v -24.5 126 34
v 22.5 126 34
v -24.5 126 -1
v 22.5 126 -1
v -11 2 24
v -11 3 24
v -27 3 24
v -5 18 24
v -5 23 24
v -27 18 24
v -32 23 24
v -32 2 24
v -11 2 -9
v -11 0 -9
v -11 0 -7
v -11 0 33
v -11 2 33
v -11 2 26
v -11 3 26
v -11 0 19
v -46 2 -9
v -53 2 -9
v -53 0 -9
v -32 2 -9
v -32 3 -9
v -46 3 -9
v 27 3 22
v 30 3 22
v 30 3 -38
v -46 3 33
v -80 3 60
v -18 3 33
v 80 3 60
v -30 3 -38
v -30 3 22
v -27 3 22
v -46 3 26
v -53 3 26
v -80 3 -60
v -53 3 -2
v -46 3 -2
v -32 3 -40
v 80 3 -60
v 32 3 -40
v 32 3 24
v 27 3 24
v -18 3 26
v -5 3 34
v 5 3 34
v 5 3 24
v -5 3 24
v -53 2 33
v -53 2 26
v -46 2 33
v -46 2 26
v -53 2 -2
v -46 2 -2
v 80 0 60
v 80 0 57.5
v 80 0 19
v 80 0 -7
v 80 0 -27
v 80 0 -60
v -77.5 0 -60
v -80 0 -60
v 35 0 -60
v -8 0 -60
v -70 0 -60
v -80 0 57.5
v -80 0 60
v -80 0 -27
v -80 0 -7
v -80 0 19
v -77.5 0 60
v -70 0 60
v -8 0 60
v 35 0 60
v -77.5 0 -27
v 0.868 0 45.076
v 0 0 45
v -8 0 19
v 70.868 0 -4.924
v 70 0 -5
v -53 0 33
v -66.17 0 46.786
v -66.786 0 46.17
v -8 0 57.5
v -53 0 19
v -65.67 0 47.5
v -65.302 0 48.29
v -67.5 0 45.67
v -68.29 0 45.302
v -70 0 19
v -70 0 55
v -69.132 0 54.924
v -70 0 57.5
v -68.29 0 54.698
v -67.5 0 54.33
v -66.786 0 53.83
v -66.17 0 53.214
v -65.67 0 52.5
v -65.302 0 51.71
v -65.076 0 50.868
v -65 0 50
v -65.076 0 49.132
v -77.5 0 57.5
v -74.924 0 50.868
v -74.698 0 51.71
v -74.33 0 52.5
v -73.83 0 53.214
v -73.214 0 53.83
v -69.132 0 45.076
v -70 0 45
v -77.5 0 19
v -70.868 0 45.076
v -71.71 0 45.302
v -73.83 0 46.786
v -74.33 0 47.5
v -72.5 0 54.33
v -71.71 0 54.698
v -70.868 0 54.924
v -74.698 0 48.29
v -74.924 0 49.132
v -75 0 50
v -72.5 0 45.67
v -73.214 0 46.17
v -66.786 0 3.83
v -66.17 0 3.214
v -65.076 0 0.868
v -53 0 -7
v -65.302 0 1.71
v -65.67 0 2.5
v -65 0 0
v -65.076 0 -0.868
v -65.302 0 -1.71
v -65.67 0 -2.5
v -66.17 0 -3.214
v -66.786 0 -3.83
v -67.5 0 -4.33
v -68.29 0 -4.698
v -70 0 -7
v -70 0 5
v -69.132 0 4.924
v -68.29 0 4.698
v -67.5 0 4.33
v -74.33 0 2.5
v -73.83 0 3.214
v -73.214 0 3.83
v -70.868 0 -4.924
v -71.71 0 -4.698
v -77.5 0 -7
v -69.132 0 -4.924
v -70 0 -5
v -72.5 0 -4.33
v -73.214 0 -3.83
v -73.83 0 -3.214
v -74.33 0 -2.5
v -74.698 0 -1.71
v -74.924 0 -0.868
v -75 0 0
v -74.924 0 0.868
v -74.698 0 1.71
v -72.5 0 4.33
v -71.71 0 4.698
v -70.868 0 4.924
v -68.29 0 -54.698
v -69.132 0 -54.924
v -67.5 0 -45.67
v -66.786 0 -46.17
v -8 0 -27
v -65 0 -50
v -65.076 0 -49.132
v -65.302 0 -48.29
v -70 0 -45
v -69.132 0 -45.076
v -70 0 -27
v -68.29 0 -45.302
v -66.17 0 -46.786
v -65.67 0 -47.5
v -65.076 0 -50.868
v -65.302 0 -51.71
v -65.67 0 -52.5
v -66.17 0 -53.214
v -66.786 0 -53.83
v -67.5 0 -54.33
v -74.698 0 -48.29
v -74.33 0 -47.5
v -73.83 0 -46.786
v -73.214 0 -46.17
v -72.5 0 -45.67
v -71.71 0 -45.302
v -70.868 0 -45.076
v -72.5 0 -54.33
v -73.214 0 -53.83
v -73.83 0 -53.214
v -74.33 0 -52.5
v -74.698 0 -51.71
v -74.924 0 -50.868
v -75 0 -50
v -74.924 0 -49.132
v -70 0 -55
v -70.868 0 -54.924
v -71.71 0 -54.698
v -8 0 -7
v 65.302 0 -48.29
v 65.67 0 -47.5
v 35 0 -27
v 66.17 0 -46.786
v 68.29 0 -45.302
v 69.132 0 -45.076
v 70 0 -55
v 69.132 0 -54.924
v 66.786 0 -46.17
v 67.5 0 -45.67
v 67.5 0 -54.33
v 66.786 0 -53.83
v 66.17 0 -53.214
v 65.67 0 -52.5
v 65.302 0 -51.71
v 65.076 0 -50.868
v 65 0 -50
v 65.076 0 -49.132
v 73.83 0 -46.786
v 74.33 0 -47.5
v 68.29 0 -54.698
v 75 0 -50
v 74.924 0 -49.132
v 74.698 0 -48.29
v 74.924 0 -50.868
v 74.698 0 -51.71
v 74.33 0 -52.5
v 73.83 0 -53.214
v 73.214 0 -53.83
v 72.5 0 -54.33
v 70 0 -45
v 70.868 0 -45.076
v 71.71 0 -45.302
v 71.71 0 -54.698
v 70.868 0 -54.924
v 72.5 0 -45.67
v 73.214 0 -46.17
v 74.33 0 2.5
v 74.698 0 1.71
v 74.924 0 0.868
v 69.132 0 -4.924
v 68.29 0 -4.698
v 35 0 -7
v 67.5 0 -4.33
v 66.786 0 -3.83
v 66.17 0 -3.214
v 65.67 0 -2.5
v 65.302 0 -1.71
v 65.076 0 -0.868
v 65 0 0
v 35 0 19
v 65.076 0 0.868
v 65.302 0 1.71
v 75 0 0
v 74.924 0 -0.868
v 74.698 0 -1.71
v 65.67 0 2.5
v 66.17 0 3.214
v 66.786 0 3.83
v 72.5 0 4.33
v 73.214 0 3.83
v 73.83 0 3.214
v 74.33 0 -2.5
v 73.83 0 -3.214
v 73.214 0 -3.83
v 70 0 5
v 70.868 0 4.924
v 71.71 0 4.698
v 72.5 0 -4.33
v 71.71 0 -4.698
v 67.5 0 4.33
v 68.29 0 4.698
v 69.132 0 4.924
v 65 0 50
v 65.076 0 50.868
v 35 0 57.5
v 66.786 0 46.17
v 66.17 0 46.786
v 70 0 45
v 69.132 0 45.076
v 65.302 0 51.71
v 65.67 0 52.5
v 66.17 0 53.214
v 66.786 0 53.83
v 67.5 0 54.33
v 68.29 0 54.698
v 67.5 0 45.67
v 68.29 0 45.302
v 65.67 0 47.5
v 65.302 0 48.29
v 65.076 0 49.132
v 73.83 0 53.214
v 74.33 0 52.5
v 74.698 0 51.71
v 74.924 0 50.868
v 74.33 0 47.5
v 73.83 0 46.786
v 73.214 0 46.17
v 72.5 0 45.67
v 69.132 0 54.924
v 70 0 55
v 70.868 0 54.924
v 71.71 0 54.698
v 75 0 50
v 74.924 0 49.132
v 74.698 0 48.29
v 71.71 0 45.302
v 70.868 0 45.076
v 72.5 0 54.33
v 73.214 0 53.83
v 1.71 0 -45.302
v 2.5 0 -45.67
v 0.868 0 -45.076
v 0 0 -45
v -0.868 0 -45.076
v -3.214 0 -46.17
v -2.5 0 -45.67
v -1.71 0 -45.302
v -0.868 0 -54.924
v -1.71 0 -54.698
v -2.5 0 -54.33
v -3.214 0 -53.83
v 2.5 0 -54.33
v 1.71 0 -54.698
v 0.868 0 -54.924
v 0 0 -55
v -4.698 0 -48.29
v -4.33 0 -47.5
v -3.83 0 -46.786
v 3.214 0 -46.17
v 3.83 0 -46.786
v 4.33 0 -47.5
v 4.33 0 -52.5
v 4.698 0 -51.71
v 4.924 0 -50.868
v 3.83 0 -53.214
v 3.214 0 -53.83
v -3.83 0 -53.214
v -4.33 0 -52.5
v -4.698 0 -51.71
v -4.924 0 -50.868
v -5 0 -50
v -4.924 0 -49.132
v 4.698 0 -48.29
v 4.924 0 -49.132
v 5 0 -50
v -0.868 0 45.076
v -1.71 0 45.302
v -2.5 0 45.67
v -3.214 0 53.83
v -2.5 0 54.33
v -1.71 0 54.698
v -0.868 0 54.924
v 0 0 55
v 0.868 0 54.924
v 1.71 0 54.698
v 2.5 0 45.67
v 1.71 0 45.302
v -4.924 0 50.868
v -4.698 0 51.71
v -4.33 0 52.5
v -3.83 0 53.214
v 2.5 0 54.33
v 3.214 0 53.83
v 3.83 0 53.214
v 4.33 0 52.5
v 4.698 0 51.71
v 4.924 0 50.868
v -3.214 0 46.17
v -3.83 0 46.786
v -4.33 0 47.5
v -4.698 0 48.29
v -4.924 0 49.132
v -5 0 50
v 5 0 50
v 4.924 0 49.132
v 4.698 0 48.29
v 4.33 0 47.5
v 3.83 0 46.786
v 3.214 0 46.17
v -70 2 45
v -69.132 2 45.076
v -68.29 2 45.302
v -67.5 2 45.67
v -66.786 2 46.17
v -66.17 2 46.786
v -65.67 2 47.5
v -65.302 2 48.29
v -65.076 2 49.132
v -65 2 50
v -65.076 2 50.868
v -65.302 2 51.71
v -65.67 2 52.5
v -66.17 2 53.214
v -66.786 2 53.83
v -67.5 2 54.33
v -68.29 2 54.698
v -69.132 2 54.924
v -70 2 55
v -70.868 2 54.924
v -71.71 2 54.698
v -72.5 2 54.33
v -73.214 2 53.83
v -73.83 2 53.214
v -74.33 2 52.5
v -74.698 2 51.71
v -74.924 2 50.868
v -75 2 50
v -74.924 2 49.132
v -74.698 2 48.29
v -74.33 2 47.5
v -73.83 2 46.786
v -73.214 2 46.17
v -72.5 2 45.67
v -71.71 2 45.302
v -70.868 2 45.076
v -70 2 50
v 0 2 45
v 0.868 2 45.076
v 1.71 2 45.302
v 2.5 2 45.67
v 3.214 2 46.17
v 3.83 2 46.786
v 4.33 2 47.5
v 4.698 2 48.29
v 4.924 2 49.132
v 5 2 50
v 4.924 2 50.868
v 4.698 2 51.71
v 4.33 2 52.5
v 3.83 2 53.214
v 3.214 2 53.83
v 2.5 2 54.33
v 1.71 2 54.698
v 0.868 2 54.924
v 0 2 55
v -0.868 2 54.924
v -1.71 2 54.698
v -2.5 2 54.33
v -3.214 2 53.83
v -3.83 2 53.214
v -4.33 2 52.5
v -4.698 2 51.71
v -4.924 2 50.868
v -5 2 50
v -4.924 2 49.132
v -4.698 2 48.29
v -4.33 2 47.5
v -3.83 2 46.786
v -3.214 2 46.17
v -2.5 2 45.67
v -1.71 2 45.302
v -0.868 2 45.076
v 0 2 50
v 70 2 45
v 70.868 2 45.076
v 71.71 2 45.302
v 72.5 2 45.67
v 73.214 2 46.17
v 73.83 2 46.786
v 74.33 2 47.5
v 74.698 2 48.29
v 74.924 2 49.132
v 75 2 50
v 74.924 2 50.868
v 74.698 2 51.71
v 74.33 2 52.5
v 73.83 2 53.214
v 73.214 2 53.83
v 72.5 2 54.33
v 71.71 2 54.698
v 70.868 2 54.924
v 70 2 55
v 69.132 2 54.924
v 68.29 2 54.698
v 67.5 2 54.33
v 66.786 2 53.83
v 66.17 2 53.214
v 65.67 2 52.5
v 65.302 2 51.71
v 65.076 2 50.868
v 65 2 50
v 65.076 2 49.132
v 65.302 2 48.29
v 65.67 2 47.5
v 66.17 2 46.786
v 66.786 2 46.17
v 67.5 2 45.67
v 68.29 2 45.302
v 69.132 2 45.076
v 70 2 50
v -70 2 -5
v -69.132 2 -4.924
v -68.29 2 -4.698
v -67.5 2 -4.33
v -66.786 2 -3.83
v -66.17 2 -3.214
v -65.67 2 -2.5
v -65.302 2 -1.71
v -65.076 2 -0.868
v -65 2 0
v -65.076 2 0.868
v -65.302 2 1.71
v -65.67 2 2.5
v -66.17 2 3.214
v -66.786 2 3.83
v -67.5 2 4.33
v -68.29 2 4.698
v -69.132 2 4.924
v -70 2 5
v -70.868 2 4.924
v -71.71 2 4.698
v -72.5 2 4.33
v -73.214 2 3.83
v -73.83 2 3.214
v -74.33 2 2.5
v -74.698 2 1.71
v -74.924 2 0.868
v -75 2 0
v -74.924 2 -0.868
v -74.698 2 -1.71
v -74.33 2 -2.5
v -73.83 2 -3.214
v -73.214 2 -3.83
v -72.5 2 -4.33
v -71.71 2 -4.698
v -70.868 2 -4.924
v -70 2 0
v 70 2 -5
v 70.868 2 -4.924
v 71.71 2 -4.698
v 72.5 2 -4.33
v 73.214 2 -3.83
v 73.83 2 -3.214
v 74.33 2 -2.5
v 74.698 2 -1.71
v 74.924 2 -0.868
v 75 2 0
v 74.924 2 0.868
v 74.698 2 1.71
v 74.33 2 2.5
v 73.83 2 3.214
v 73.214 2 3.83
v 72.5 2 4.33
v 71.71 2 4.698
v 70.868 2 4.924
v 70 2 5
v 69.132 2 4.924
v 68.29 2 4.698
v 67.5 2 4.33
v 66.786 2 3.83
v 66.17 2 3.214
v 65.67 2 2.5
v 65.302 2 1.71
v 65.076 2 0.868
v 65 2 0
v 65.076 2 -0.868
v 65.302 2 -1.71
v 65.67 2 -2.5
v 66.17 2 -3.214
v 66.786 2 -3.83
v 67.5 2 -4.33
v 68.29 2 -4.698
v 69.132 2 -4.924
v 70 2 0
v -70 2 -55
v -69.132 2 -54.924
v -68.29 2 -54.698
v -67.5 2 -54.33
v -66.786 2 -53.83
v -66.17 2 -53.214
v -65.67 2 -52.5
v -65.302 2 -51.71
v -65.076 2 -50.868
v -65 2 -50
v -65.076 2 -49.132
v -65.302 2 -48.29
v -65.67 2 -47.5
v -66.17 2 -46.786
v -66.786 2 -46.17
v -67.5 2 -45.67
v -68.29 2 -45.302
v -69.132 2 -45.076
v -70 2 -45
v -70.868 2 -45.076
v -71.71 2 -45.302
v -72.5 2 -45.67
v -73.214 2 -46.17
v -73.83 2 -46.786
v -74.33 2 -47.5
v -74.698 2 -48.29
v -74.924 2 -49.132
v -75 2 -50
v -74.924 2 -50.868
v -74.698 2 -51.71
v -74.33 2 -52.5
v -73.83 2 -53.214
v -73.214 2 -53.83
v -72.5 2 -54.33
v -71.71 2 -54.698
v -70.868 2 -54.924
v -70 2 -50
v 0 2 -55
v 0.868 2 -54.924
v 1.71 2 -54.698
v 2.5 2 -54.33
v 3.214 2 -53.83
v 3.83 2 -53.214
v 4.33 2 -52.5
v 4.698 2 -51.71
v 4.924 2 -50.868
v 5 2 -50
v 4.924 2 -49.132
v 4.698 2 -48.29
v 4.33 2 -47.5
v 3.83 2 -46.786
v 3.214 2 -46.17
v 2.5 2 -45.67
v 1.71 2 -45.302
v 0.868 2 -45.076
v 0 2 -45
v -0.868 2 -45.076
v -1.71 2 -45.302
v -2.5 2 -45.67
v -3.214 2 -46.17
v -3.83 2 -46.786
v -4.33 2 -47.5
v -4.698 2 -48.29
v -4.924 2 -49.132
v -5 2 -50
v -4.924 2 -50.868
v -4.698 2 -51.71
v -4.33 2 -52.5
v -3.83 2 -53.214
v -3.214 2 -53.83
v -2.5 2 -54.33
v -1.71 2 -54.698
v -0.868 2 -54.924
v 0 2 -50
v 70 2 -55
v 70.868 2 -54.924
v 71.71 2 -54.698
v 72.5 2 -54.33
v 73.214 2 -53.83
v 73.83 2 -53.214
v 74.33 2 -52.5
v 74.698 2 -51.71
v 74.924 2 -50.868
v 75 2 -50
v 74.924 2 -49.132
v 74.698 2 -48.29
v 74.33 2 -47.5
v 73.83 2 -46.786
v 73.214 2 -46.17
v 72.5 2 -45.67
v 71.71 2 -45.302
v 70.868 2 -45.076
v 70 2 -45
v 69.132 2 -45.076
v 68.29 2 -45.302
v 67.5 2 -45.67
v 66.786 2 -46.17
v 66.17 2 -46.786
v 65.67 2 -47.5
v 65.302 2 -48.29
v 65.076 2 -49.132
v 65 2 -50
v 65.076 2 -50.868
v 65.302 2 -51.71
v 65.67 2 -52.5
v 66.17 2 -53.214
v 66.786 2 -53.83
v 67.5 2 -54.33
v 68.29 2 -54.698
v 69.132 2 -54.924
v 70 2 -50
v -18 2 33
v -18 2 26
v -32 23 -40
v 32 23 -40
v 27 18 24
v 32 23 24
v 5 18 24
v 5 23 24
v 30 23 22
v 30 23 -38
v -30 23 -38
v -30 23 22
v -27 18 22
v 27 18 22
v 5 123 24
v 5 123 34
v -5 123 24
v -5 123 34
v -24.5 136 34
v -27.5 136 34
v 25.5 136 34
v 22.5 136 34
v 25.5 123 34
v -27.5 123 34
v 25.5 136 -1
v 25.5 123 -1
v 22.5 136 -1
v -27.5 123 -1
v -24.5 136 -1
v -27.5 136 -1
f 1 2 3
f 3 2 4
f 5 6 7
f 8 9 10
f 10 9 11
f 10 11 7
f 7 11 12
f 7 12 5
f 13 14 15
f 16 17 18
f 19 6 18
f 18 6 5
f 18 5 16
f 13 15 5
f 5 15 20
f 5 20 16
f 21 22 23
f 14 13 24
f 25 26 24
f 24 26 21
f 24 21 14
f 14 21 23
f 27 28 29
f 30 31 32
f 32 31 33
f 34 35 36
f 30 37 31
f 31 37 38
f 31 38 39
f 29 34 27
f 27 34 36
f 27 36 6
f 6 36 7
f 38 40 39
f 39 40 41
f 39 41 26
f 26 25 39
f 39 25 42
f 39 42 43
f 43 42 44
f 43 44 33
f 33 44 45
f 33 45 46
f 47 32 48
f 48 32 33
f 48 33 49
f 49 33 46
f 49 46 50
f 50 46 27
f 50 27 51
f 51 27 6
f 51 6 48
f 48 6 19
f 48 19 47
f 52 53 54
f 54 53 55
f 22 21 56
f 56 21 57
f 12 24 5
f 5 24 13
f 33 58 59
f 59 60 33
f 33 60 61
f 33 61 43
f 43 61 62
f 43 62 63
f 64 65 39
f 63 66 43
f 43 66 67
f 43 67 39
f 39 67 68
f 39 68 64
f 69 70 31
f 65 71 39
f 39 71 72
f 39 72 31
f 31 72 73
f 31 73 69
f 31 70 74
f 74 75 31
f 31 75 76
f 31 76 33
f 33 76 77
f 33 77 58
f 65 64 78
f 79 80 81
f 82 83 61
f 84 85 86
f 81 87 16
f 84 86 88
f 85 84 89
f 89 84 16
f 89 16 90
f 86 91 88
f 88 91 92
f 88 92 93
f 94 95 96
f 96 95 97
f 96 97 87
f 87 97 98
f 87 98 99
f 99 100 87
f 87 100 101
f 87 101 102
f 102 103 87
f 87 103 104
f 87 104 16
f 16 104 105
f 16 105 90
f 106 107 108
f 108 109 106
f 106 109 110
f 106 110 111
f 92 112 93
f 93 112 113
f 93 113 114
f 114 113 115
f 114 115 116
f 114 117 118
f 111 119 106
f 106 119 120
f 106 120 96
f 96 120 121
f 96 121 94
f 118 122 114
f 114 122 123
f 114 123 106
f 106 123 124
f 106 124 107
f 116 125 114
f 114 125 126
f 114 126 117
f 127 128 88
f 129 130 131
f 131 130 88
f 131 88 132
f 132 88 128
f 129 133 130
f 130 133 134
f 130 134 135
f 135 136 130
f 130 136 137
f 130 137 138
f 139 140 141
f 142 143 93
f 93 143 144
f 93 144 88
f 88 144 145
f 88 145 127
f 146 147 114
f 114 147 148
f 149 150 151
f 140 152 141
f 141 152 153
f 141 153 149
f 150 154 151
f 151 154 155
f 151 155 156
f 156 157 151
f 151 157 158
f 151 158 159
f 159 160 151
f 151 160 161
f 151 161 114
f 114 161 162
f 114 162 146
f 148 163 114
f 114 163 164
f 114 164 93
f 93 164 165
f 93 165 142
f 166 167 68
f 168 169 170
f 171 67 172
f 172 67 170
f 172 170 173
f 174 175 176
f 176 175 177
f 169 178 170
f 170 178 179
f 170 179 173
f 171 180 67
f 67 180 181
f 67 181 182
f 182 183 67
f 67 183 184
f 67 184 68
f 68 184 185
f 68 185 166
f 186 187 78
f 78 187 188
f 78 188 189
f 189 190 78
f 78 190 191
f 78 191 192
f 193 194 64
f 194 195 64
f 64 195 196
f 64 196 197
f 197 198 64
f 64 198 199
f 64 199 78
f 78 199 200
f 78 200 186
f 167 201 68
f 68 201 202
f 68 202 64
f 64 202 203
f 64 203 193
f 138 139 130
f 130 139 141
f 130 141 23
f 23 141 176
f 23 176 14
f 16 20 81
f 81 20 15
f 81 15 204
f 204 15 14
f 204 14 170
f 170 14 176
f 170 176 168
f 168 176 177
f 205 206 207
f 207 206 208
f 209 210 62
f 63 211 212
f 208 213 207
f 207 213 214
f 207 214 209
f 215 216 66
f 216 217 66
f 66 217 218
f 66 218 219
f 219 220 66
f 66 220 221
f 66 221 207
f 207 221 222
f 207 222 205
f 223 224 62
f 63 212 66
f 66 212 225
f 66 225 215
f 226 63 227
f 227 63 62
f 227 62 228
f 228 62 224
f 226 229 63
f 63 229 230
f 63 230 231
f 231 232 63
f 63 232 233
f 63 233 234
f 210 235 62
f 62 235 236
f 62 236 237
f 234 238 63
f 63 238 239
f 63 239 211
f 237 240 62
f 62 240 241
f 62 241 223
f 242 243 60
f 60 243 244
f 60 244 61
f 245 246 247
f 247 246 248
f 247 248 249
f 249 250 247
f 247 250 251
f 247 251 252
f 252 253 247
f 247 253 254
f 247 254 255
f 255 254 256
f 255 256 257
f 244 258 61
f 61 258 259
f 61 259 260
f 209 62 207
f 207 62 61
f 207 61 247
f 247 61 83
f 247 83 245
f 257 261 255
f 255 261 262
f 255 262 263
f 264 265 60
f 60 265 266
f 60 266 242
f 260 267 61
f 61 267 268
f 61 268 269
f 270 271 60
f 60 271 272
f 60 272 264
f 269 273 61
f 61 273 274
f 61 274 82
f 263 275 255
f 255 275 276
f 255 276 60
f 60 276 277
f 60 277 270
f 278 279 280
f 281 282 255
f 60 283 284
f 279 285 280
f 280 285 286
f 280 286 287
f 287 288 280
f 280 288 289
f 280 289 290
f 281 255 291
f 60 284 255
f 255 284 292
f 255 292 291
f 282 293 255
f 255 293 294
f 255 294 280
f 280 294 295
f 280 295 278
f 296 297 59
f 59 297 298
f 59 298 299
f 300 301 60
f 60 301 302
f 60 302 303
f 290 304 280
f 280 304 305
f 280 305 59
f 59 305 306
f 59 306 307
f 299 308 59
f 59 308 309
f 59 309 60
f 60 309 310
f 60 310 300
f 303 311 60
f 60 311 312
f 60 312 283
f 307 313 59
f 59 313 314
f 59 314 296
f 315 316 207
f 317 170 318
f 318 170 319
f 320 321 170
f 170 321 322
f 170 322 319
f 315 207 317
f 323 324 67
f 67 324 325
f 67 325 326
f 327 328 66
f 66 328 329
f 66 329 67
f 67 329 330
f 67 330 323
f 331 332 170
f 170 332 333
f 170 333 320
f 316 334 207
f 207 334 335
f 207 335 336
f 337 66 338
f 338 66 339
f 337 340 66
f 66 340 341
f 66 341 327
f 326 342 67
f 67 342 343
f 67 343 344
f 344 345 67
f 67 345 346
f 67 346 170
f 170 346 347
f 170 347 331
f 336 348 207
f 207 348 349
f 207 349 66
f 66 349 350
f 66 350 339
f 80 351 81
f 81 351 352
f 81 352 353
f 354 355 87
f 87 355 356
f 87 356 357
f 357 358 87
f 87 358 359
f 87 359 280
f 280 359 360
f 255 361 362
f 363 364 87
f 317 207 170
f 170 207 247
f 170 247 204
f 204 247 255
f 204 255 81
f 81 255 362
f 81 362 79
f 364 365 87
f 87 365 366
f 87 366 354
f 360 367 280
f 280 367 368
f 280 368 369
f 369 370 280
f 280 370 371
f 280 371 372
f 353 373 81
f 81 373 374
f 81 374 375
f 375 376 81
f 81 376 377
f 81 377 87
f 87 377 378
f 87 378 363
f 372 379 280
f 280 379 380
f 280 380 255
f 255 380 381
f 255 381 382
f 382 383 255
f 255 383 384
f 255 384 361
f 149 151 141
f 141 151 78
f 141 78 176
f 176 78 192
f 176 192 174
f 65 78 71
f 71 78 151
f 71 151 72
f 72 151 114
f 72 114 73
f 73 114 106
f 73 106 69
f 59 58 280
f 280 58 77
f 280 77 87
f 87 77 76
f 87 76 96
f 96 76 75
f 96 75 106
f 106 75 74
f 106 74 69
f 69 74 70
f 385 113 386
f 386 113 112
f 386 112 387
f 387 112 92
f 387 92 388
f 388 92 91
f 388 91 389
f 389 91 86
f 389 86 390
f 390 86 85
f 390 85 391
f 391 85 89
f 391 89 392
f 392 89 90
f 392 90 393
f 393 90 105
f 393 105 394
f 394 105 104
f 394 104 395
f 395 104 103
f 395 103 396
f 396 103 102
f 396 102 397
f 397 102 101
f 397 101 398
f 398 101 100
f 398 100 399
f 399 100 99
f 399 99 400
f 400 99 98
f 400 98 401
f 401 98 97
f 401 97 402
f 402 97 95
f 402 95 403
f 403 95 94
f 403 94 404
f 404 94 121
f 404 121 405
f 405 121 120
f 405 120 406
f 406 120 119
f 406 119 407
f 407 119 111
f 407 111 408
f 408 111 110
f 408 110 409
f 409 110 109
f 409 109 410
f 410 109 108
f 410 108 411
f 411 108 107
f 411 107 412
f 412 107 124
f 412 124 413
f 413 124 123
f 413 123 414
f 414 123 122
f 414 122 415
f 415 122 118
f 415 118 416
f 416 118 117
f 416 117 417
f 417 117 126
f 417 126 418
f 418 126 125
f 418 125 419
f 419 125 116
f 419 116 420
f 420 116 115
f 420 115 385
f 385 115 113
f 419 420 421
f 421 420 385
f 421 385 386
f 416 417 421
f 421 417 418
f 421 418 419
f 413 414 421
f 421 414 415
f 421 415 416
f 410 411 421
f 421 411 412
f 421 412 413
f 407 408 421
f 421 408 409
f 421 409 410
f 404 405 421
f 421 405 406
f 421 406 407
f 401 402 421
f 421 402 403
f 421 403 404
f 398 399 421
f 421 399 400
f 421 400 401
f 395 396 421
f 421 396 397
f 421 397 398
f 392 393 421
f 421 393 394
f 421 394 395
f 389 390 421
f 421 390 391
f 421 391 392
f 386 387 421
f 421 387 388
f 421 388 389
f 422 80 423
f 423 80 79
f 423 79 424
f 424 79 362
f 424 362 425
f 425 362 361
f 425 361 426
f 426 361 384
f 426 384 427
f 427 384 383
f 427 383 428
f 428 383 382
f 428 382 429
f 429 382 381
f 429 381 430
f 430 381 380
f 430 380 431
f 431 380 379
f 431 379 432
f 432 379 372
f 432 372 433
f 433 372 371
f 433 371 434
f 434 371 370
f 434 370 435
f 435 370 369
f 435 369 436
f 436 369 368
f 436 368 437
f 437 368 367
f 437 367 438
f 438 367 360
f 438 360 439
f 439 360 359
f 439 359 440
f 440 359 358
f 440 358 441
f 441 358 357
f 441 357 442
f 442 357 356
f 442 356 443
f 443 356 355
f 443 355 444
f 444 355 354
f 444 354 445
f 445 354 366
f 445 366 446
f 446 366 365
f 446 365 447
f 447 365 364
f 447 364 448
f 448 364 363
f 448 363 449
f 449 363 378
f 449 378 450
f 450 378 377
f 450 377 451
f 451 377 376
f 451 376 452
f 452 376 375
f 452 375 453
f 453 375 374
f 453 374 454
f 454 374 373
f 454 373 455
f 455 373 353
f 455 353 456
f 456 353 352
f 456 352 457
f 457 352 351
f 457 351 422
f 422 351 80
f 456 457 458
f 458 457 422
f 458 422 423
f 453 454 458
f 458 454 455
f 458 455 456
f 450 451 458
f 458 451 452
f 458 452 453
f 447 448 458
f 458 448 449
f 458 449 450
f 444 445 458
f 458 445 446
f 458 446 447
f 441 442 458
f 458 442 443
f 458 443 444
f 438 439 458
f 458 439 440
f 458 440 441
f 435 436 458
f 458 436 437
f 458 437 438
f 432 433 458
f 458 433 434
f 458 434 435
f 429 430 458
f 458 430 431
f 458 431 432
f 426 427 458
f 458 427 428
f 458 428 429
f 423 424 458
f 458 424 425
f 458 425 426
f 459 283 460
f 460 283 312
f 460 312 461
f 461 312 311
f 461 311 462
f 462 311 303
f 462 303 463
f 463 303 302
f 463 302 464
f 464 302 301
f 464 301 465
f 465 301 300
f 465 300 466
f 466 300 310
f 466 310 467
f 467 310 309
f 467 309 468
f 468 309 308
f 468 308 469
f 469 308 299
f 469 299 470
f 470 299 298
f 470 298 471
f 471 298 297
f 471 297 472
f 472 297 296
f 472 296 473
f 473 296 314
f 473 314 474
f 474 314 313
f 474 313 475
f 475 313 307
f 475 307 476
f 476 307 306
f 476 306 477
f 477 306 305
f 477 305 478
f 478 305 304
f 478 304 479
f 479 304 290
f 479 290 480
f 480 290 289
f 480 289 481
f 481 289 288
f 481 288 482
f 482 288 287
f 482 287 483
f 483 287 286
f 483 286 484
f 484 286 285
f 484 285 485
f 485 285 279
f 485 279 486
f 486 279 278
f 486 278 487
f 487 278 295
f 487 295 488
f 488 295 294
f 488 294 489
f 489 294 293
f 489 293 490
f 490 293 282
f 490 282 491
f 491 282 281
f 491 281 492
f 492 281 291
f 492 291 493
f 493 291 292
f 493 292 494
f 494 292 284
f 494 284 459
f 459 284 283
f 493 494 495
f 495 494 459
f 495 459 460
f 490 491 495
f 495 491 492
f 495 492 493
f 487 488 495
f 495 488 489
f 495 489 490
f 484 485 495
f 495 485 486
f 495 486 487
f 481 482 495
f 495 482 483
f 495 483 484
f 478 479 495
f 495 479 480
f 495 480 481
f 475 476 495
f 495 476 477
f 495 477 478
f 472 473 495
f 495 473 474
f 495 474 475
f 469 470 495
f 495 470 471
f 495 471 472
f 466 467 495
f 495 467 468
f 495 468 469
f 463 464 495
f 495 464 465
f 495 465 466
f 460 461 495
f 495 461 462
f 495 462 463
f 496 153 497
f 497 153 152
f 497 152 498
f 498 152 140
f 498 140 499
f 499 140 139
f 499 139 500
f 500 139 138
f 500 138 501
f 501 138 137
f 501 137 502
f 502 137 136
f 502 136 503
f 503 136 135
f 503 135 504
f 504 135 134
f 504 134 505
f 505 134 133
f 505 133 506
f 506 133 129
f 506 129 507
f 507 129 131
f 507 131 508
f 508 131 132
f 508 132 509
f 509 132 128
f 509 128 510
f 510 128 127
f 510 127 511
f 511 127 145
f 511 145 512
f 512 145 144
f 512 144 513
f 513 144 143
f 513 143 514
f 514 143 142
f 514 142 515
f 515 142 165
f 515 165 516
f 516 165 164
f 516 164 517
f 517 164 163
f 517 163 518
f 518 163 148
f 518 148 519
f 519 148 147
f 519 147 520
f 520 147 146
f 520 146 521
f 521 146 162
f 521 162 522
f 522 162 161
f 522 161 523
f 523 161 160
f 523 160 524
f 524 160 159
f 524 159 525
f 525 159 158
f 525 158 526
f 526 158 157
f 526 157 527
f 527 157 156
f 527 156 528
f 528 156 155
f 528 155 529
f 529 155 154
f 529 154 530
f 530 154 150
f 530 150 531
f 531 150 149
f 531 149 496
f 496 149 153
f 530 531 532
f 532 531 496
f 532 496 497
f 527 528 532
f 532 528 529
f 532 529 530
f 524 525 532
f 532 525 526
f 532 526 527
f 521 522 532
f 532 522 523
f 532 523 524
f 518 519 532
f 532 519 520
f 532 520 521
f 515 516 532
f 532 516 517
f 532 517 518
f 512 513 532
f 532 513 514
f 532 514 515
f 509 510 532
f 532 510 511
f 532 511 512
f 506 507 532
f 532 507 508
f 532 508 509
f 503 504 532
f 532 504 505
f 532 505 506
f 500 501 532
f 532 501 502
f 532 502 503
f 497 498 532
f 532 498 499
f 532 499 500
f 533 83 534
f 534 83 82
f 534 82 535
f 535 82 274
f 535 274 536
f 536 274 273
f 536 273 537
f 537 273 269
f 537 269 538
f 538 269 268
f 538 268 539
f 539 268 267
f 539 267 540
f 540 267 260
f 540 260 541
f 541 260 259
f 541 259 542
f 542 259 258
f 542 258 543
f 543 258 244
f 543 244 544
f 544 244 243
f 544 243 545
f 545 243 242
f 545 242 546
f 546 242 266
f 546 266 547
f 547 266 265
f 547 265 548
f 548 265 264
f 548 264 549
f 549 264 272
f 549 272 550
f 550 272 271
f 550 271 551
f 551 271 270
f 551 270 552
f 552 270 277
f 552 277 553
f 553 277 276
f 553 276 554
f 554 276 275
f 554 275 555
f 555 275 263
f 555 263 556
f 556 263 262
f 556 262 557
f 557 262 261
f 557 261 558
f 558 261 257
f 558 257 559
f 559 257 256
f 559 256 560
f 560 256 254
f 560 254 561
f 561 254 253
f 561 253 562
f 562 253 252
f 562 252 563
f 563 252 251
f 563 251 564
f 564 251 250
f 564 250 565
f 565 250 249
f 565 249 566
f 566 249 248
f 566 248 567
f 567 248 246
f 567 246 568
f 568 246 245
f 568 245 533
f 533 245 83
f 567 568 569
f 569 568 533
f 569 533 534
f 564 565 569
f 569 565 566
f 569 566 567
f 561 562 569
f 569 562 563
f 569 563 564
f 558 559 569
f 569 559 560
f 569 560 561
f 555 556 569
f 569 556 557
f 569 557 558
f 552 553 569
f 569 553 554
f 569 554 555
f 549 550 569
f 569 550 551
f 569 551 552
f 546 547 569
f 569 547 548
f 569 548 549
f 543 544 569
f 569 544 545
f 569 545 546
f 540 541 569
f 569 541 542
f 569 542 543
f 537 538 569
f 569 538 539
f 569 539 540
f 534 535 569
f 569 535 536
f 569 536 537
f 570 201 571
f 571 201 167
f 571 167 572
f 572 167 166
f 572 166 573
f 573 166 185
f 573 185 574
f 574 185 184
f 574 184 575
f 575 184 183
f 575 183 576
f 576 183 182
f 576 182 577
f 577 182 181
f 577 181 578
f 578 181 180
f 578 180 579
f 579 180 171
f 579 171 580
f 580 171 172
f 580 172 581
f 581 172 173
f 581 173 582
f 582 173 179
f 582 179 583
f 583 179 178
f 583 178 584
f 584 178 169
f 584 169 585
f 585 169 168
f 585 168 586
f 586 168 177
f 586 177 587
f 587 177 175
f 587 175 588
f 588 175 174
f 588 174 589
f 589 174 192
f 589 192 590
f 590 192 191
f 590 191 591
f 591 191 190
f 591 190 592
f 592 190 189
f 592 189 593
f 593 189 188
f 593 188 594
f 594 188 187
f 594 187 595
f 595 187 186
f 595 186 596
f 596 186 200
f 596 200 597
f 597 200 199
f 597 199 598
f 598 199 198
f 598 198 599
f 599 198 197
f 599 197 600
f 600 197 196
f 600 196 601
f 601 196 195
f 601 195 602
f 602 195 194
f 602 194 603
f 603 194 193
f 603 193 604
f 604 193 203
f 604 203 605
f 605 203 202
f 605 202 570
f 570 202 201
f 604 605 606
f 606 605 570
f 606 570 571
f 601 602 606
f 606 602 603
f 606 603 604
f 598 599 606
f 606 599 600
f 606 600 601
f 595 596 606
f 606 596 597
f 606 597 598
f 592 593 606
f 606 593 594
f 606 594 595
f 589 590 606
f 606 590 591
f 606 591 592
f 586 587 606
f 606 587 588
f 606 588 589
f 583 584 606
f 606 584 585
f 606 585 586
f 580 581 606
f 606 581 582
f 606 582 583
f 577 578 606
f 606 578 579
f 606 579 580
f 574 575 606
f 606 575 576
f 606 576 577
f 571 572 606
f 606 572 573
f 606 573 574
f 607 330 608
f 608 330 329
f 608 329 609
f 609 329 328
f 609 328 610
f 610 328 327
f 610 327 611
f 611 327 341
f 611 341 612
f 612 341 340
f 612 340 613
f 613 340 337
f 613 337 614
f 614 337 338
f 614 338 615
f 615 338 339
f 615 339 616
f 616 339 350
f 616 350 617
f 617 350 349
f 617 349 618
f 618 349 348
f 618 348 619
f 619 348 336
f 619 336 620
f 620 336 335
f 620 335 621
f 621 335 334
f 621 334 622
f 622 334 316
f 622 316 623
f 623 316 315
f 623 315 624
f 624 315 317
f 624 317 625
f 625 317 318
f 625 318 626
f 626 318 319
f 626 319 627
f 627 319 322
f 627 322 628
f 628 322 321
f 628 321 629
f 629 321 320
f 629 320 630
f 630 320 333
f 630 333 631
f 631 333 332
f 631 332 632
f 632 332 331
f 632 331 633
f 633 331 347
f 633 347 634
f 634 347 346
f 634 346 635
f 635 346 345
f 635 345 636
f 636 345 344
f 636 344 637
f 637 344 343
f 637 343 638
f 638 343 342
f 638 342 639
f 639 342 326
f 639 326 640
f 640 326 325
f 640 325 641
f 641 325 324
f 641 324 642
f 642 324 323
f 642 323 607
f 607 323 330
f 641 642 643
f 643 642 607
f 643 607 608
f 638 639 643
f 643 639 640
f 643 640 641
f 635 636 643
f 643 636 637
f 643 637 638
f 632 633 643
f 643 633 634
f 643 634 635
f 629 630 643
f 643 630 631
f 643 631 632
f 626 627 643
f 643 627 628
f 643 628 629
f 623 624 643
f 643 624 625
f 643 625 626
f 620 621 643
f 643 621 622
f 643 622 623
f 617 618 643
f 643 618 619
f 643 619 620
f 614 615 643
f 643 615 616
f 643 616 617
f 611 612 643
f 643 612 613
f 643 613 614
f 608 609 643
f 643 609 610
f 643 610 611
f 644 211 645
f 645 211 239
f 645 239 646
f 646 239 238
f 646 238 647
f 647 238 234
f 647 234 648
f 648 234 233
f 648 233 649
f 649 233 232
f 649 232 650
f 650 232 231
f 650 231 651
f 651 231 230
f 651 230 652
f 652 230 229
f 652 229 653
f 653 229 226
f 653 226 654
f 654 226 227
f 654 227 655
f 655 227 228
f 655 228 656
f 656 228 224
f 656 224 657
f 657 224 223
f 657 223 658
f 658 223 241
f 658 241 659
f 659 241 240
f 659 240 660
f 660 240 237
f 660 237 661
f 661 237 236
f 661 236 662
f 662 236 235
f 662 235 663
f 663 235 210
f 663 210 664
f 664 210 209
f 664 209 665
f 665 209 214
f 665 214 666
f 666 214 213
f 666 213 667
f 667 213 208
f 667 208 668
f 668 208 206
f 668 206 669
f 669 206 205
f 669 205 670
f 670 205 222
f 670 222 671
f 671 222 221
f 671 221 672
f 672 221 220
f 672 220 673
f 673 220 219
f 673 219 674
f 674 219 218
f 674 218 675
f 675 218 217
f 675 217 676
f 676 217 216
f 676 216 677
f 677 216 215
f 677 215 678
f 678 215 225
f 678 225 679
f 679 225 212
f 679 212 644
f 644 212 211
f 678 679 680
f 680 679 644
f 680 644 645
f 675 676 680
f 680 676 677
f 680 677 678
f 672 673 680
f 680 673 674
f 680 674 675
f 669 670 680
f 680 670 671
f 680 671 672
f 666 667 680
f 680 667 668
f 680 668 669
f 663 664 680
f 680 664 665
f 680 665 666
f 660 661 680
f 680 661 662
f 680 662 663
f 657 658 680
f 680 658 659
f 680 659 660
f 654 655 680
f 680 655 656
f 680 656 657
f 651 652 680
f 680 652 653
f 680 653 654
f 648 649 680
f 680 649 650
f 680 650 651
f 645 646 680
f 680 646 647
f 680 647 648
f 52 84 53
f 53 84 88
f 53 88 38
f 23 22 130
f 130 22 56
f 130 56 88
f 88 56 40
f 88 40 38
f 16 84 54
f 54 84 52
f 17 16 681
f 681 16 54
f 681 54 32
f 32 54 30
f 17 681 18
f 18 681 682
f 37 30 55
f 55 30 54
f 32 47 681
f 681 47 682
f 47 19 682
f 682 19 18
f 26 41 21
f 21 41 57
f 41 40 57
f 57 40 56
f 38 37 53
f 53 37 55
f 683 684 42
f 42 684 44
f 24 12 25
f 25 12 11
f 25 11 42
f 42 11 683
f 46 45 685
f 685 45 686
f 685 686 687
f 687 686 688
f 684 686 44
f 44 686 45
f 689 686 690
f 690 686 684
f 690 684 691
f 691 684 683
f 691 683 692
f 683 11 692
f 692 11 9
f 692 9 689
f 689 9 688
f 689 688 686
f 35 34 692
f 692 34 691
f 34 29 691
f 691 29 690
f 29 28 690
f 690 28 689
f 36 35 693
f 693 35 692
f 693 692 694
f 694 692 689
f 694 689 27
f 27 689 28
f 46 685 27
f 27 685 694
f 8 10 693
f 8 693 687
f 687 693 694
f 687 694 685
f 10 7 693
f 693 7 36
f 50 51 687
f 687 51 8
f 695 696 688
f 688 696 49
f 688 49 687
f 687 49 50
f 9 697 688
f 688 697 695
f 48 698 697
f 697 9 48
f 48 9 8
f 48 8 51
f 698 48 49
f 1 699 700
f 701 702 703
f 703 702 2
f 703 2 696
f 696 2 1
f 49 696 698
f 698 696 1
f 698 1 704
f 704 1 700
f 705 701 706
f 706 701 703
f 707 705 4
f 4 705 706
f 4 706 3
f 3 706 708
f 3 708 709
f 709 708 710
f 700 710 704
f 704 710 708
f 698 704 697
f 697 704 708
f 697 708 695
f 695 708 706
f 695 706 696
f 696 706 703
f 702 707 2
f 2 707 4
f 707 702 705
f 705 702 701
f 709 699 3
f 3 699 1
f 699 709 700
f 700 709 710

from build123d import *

# Parameters (mm, degrees)
SKETCH1_W           = 160
SKETCH1_H           = 120
BOSS_EXTRUDE1_DEPTH = 3
SKETCH2_R           = 5
CUT_EXTRUDE1_DEPTH  = 2
SKETCH3_W           = 42
SKETCH3_H           = 42
CUT_EXTRUDE2_DEPTH  = 2
CUT_EXTRUDE3_DEPTH  = 1
BOSS_EXTRUDE2_DEPTH = 20
BOSS_EXTRUDE3_DEPTH = 1
SKETCH7_W           = 60
SKETCH7_H           = 60
CUT_EXTRUDE4_DEPTH  = 20
CUT_EXTRUDE5_REACH  = 120.258
SKETCH8_W           = 54
SKETCH8_H           = 15
BOSS_EXTRUDE4_DEPTH = 120
BOSS_EXTRUDE5_DEPTH = 3
SKETCH11_W          = 3
SKETCH11_H          = 35
BOSS_EXTRUDE6_DEPTH = 10


with BuildPart() as part:
    # Sketch1 → Boss-Extrude1 (new body)
    with BuildSketch(Plane(origin=(0, 0, 0), x_dir=(1, 0, 0), z_dir=(0, 1, 0))):
        Rectangle(SKETCH1_W, SKETCH1_H)
    extrude(amount=BOSS_EXTRUDE1_DEPTH)

    # Sketch2 → Cut-Extrude1 (cut)
    with BuildSketch(Plane.XZ):
        with Locations(Location((-70, 50, 0), (0, 0, 270))):
            Circle(SKETCH2_R)
        with Locations(Location((0, 50, 0), (0, 0, 270))):
            Circle(SKETCH2_R)
        with Locations(Location((70, 50, 0), (0, 0, 270))):
            Circle(SKETCH2_R)
        with Locations(Location((-70, 0, 0), (0, 0, 270))):
            Circle(SKETCH2_R)
        with Locations(Location((70, 0, 0), (0, 0, 270))):
            Circle(SKETCH2_R)
        with Locations(Location((-70, -50, 0), (0, 0, 270))):
            Circle(SKETCH2_R)
        with Locations(Location((0, -50, 0), (0, 0, 270))):
            Circle(SKETCH2_R)
        with Locations(Location((70, -50, 0), (0, 0, 270))):
            Circle(SKETCH2_R)
    extrude(amount=-CUT_EXTRUDE1_DEPTH, mode=Mode.SUBTRACT)

    # Sketch3 → Cut-Extrude2 (cut)
    with BuildSketch(Plane.XZ):
        with Locations((-32, 12)):
            Rectangle(SKETCH3_W, SKETCH3_H)
    extrude(amount=-CUT_EXTRUDE2_DEPTH, mode=Mode.SUBTRACT)

    # Sketch4 → Cut-Extrude3 (cut)
    with BuildSketch(Plane.XZ.offset(-2)):
        Polygon((-46, 33), (-18, 33), (-18, 26), (-11, 26), (-11, -2), (-18, -2), (-18, -9), (-46, -9), (-46, -2), (-53, -2), (-53, 26), (-46, 26), align=None)
    extrude(amount=-CUT_EXTRUDE3_DEPTH, mode=Mode.SUBTRACT)

    # Sketch5 → Boss-Extrude2 (add)
    with BuildSketch(Plane(origin=(0, 3, 0), x_dir=(1, 0, 0), z_dir=(0, 1, 0))):
        Polygon((0, 40), (-32, 40), (-32, -24), (32, -24), (32, 40), align=None)
    extrude(amount=BOSS_EXTRUDE2_DEPTH)

    # Sketch6 → Boss-Extrude3 (add)
    with BuildSketch(Plane.XZ.offset(-3)):
        Polygon((-32, 24), (-11, 24), (-11, -2), (-18, -2), (-18, -9), (-32, -9), align=None)
    extrude(amount=BOSS_EXTRUDE3_DEPTH)

    # Sketch7 → Cut-Extrude4 (cut)
    with BuildSketch(Plane(origin=(0, 23, 0), x_dir=(1, 0, 0), z_dir=(0, 1, 0))):
        with Locations((0, 8)):
            Rectangle(SKETCH7_W, SKETCH7_H)
    extrude(amount=-CUT_EXTRUDE4_DEPTH, mode=Mode.SUBTRACT)

    # Sketch8 → Cut-Extrude5 (cut, up to next)
    with BuildSketch(Plane.XY.offset(24), mode=Mode.PRIVATE) as cut_extrude5_sk1:
        with Locations((0, 10.5)):
            Rectangle(SKETCH8_W, SKETCH8_H)
    cut_extrude5_tool1 = extrude(cut_extrude5_sk1.sketch, amount=-CUT_EXTRUDE5_REACH, mode=Mode.PRIVATE) & part.part
    add(cut_extrude5_tool1.solids().sort_by_distance((0, 10.5, 24))[0], mode=Mode.SUBTRACT)

    # Sketch9 → Boss-Extrude4 (add)
    with BuildSketch(Plane(origin=(0, 3, 0), x_dir=(1, 0, 0), z_dir=(0, 1, 0))):
        Polygon((0, -24), (5, -24), (5, -34), (-5, -34), (-5, -24), align=None)
    extrude(amount=BOSS_EXTRUDE4_DEPTH)

    # Sketch10 → Boss-Extrude5 (add)
    with BuildSketch(Plane(origin=(0, 123, 0), x_dir=(1, 0, 0), z_dir=(0, 1, 0))):
        Polygon((0, -34), (25.5, -34), (25.5, 1), (-27.5, 1), (-27.5, -34), align=None)
    extrude(amount=BOSS_EXTRUDE5_DEPTH)

    # Sketch11 → Boss-Extrude6 (add)
    with BuildSketch(Plane(origin=(0, 126, 0), x_dir=(1, 0, 0), z_dir=(0, 1, 0))):
        with Locations((24, -16.5)):
            Rectangle(SKETCH11_W, SKETCH11_H)
        with Locations((-26, -16.5)):
            Rectangle(SKETCH11_W, SKETCH11_H)
    extrude(amount=BOSS_EXTRUDE6_DEPTH)


solid = part.part
